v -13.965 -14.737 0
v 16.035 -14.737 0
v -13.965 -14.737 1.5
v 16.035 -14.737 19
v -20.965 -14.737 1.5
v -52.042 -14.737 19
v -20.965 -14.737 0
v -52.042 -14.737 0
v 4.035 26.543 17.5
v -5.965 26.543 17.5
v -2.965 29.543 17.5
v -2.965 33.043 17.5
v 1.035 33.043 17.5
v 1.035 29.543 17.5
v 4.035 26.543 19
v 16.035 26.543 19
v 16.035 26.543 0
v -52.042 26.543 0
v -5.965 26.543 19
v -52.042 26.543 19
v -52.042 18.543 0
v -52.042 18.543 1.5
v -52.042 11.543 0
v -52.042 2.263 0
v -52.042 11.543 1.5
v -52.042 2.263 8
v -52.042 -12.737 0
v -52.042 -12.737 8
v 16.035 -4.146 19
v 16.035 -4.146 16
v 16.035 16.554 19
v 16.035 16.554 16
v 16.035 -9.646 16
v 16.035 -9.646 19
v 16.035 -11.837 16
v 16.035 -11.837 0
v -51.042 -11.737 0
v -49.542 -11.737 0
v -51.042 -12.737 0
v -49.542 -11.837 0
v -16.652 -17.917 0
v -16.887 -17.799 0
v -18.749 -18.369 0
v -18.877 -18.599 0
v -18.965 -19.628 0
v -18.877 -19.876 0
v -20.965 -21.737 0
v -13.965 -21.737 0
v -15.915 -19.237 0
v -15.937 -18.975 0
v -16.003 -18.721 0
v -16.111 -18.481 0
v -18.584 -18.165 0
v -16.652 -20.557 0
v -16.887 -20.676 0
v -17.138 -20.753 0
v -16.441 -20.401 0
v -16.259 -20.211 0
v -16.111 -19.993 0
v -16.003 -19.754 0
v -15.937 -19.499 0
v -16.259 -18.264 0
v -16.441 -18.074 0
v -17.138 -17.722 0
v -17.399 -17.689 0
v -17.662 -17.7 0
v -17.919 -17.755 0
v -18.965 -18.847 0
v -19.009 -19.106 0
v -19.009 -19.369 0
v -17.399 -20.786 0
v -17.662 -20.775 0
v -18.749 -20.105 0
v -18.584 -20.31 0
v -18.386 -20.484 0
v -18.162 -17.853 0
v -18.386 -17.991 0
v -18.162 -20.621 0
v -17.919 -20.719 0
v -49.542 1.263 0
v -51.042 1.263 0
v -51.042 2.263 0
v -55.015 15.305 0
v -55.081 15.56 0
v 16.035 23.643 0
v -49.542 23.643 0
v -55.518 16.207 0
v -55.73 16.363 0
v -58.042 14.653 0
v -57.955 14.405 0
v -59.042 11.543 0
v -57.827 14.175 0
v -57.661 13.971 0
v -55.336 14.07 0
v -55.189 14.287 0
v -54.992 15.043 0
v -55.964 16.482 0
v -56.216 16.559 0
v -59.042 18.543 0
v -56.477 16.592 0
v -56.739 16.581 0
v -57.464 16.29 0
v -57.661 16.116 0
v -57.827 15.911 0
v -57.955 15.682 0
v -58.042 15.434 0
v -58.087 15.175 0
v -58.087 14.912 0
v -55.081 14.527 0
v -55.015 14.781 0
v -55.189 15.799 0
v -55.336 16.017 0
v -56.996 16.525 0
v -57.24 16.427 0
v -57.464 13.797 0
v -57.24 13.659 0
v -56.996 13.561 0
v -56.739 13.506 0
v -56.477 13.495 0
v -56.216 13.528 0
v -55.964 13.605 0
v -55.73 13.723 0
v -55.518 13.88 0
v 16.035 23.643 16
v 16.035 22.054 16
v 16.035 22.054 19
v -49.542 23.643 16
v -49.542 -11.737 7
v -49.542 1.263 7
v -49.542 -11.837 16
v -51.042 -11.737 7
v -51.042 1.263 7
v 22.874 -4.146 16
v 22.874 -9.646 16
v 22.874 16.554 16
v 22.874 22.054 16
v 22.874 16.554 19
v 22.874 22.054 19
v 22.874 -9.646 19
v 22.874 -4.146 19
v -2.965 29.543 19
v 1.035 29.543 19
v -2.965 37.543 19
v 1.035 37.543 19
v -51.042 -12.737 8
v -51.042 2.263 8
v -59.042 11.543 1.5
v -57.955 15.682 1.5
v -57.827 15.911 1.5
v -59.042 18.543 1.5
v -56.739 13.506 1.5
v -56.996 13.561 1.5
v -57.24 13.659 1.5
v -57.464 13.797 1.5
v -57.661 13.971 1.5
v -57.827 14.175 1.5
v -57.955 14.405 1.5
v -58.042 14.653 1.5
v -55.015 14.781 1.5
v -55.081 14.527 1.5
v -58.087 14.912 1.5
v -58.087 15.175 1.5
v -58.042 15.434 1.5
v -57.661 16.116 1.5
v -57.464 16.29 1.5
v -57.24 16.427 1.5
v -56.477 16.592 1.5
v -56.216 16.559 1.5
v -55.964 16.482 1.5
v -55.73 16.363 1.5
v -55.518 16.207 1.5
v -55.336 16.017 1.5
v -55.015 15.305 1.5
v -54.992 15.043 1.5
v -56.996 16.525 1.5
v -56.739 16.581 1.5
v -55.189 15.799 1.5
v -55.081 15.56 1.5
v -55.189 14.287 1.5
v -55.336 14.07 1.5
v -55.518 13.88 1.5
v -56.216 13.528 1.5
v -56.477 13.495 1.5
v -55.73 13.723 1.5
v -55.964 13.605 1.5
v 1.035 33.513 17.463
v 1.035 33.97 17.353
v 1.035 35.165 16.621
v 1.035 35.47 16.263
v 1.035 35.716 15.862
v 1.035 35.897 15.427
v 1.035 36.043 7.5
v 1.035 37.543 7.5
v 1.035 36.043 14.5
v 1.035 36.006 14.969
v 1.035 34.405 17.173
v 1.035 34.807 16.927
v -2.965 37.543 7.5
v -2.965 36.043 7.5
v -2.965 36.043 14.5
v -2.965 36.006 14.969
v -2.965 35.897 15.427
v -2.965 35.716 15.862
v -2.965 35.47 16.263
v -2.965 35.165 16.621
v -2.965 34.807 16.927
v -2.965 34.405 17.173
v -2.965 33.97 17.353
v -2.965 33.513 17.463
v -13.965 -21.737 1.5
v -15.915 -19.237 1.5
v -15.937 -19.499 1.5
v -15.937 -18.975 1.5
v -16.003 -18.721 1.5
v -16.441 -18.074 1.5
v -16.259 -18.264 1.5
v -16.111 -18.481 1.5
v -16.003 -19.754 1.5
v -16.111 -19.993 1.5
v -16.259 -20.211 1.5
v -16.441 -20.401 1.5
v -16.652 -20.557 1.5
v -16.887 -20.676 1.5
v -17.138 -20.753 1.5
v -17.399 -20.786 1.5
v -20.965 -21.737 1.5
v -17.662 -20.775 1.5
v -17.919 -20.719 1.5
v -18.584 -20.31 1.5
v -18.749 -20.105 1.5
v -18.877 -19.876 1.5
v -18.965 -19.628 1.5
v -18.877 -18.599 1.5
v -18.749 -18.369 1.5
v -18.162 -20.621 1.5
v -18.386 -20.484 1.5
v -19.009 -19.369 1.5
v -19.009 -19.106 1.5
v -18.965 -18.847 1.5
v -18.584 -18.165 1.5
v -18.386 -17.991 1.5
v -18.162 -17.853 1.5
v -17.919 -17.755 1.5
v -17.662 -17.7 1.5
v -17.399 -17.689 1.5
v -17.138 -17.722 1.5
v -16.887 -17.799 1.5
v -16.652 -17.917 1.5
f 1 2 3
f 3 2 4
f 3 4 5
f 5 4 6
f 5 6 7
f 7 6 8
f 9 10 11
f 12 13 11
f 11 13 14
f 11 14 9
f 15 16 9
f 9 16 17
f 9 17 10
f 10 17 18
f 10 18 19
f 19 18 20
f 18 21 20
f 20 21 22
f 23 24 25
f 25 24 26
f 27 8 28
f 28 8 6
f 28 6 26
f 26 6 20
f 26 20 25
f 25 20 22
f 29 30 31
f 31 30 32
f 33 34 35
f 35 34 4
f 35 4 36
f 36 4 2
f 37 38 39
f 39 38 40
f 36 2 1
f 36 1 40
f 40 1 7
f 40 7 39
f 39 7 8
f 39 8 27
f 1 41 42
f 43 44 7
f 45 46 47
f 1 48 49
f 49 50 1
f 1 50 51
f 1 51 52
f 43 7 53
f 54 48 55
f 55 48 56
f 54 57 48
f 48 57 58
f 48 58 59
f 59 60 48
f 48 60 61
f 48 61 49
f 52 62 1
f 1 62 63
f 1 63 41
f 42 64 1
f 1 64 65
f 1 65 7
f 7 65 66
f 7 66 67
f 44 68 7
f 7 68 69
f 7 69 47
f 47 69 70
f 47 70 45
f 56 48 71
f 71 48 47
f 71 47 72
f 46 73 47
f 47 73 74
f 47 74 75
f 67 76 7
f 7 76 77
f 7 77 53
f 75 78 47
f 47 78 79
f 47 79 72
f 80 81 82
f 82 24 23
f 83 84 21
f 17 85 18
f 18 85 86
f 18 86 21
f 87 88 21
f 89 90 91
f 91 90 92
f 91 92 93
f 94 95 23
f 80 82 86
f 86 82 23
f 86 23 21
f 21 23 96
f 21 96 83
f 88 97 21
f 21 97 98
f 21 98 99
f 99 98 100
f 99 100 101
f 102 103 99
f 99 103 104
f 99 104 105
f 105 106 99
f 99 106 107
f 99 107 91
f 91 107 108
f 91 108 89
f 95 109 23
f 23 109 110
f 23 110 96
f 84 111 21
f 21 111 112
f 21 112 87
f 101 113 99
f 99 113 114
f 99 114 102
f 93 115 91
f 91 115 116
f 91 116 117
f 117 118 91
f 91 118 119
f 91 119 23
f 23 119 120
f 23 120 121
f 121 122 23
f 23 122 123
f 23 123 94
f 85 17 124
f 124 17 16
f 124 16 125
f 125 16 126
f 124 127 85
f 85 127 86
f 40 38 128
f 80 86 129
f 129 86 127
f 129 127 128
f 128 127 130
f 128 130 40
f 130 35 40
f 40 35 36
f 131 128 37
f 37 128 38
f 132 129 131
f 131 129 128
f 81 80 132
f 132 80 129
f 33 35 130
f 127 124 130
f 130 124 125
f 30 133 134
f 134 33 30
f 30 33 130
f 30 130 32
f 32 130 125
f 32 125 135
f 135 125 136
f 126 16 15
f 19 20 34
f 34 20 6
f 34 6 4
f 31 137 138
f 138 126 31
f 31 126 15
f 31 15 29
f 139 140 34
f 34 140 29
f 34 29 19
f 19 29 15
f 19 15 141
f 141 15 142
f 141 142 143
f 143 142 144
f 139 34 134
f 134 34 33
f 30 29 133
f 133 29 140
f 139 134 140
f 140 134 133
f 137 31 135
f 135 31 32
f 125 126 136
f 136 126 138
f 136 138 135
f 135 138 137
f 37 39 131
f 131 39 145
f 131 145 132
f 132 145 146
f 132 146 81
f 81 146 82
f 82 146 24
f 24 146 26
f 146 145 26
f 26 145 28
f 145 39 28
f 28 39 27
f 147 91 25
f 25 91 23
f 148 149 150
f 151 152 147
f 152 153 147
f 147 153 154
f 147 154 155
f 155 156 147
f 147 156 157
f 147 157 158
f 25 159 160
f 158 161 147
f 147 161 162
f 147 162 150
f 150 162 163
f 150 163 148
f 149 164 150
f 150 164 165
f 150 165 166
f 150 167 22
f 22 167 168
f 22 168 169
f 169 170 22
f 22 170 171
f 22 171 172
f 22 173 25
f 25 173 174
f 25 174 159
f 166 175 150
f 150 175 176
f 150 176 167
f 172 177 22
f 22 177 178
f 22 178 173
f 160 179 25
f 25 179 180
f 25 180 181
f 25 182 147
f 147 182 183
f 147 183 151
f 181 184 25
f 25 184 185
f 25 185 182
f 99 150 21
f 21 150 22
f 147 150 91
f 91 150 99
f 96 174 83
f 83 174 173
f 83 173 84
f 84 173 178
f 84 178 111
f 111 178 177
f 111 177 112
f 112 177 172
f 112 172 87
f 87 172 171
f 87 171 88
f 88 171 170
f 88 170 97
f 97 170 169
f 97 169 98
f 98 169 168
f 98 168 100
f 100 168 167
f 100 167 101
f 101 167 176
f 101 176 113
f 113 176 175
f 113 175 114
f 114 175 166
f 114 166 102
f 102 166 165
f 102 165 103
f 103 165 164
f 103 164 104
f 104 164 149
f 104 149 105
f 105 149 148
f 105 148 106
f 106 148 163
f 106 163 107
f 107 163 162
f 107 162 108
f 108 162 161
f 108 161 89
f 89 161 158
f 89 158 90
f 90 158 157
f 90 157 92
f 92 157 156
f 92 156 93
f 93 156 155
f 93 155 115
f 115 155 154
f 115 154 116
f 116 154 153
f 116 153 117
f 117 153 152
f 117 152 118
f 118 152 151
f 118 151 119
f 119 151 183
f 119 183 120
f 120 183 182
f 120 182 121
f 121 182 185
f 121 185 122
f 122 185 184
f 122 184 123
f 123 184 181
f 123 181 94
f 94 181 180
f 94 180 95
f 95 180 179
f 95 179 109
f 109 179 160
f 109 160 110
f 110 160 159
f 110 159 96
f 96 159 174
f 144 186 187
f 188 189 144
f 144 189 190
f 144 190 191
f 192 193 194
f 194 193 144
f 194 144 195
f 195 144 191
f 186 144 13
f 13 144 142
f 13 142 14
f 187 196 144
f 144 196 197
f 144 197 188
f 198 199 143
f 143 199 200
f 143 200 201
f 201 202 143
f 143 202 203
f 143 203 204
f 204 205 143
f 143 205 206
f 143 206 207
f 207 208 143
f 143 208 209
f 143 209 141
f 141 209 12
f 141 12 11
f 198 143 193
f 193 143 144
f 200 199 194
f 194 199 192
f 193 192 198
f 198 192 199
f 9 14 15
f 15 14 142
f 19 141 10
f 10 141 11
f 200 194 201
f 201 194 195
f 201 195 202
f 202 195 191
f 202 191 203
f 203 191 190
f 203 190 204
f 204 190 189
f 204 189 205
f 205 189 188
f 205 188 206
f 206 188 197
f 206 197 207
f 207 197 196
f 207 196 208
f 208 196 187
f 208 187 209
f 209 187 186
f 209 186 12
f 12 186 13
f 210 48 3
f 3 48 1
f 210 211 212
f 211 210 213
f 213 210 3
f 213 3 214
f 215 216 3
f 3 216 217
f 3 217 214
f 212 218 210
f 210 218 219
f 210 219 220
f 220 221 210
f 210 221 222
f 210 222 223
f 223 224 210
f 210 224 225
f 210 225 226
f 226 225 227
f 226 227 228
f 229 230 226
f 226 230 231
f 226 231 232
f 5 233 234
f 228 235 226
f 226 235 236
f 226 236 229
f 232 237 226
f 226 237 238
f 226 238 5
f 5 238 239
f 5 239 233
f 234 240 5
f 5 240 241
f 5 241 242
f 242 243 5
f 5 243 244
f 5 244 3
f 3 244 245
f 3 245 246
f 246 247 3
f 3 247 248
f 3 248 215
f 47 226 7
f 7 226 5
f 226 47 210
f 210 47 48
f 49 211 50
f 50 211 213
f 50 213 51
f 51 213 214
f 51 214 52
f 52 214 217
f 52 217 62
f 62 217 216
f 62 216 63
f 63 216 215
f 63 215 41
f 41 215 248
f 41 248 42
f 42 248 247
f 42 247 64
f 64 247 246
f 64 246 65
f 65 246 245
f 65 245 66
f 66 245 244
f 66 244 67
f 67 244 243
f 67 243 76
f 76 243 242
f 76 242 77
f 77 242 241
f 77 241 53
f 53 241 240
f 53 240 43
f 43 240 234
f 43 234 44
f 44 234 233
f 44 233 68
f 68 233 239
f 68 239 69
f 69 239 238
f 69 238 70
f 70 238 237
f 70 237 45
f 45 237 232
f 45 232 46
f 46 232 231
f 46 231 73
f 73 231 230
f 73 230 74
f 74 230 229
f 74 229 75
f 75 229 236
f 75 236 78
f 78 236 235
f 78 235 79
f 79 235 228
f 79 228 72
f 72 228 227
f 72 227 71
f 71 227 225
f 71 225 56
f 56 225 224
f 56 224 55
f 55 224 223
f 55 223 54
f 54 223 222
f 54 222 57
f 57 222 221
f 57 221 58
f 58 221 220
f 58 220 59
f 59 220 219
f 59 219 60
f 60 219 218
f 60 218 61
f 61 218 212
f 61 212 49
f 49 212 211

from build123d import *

# Parameters (mm, degrees)
SKETCH_1_W          = 68.077724156
SKETCH_1_H          = 41.280670561
SKETCH_1_W_2        = 62.677724156
SKETCH_1_H_2        = 35.480670561
EXTRUDE_1_DEPTH     = 16
SKETCH_2_W          = 7
SKETCH_2_H          = 13
CUT_EXTRUDE_1_DEPTH = 2.5
SKETCH_3_W          = 16
SKETCH_3_H          = 35.480670561
CUT_EXTRUDE_2_DEPTH = 2.9
SKETCH_4_W          = 68.077724156
SKETCH_4_H          = 41.280670561
EXTRUDE_2_DEPTH     = 3
SKETCH_5_W          = 3
SKETCH_5_H          = 5.5
EXTRUDE_3_DEPTH     = 6.838661
SKETCH_6_W          = 8
SKETCH_6_H          = 15
CUT_EXTRUDE_3_DEPTH = 1
SKETCH_7_W          = 1.5
SKETCH_7_H          = 7
EXTRUDE_4_DEPTH     = 7
SKETCH_8_R          = 1.55
CUT_EXTRUDE_6_DEPTH = 2.5
SKETCH_9_W          = 4
SKETCH_9_H          = 1.5
EXTRUDE_5_DEPTH     = 11
SKETCH_10_W         = 4
SKETCH_10_H         = 1.5
EXTRUDE_6_DEPTH     = 10
CHAMFER_1_SIZE      = 3
FILLET_1_R          = 3
SKETCH_11_W         = 7
SKETCH_11_H         = 1.5
EXTRUDE_7_DEPTH     = 7
SKETCH_12_R         = 1.55
CUT_EXTRUDE_7_DEPTH = 2.5


with BuildPart() as part:
    # 草图1 → 凸台-拉伸1 (new body)
    with BuildSketch(Plane.XY):
        with Locations((-18.003533133, 5.902999581)):
            Rectangle(SKETCH_1_W, SKETCH_1_H)
        with Locations((-18.203533133, 5.902999581)):
            Rectangle(SKETCH_1_W_2, SKETCH_1_H_2, mode=Mode.SUBTRACT)
    extrude(amount=EXTRUDE_1_DEPTH)

    # 草图2 → 切除-拉伸1 (cut)
    with BuildSketch(Plane.ZY.offset(52.042395211)):
        with Locations((3.5, -5.2373357)):
            Rectangle(SKETCH_2_W, SKETCH_2_H)
    extrude(amount=-CUT_EXTRUDE_1_DEPTH, mode=Mode.SUBTRACT)

    # 草图3 → 切除-拉伸2 (cut)
    with BuildSketch(Plane(origin=(16.035328945, 0, 0), x_dir=(0, 0, -1), z_dir=(1, 0, 0))):
        with Locations((-8, 5.902999581)):
            Rectangle(SKETCH_3_W, SKETCH_3_H)
    extrude(amount=-CUT_EXTRUDE_2_DEPTH, mode=Mode.SUBTRACT)

    # 草图4 → 凸台-拉伸2 (add)
    with BuildSketch(Plane.XY.offset(16)):
        with Locations((-18.003533133, 5.902999581)):
            Rectangle(SKETCH_4_W, SKETCH_4_H)
    extrude(amount=EXTRUDE_2_DEPTH)

    # 草图5 → 凸台-拉伸3 (add)
    with BuildSketch(Plane(origin=(16.035328945, 0, 0), x_dir=(0, 0, -1), z_dir=(1, 0, 0))):
        with Locations((-17.5, -6.896027597)):
            Rectangle(SKETCH_5_W, SKETCH_5_H)
        with Locations((-17.5, 19.303972403)):
            Rectangle(SKETCH_5_W, SKETCH_5_H)
    extrude(amount=EXTRUDE_3_DEPTH)

    # 草图6 → 切除-拉伸3 (cut)
    with BuildSketch(Plane.ZY.offset(52.042395211)):
        with Locations((4, -5.2373357)):
            Rectangle(SKETCH_6_W, SKETCH_6_H)
    extrude(amount=-CUT_EXTRUDE_3_DEPTH, mode=Mode.SUBTRACT)

    # 草图7 → 凸台-拉伸4 (add)
    with BuildSketch(Plane.ZY.offset(52.042395211)):
        with Locations((0.75, 15.043334861)):
            Rectangle(SKETCH_7_W, SKETCH_7_H)
    extrude(amount=EXTRUDE_4_DEPTH)

    # 草图8 → 切除-拉伸6 (cut, through all)
    with BuildSketch(Plane.XY.offset(1.5)):
        with Locations((-56.542395211, 15.043334861)):
            Circle(SKETCH_8_R)
    extrude(amount=-CUT_EXTRUDE_6_DEPTH, mode=Mode.SUBTRACT)

    # 草图9 → 凸台-拉伸5 (add)
    with BuildSketch(Plane(origin=(0, 26.543334861, 0), x_dir=(1, 0, 0), z_dir=(0, 1, 0))):
        with Locations((-0.964671055, -18.25)):
            Rectangle(SKETCH_9_W, SKETCH_9_H)
    extrude(amount=EXTRUDE_5_DEPTH)

    # 草图10 → 凸台-拉伸6 (add)
    with BuildSketch(Plane(origin=(0, 0, 17.5), x_dir=(-1, 0, 0), z_dir=(0, 0, -1))):
        with Locations((0.964671055, 36.793334861)):
            Rectangle(SKETCH_10_W, SKETCH_10_H)
    extrude(amount=EXTRUDE_6_DEPTH)

    # 倒角1
    chamfer_1_edges = [part.edges().sort_by_distance(p)[0] for p in [
        (1.035328945, 26.543334861, 18.25),
        (-2.964671055, 26.543334861, 18.25),
    ]]
    chamfer(chamfer_1_edges, length=CHAMFER_1_SIZE)

    # 圆角1
    fillet_1_edges = [part.edges().sort_by_distance(p)[0] for p in [
        (-0.964671055, 36.043334861, 17.5),
    ]]
    fillet(fillet_1_edges, radius=FILLET_1_R)

    # 草图11 → 凸台-拉伸7 (add)
    with BuildSketch(Plane.XZ.offset(14.7373357)):
        with Locations((-17.464671055, 0.75)):
            Rectangle(SKETCH_11_W, SKETCH_11_H)
    extrude(amount=EXTRUDE_7_DEPTH)

    # 草图12 → 切除-拉伸7 (cut, through all)
    with BuildSketch(Plane.XY.offset(1.5)):
        with Locations((-17.464671055, -19.2373357)):
            Circle(SKETCH_12_R)
    extrude(amount=-CUT_EXTRUDE_7_DEPTH, mode=Mode.SUBTRACT)


solid = part.part
